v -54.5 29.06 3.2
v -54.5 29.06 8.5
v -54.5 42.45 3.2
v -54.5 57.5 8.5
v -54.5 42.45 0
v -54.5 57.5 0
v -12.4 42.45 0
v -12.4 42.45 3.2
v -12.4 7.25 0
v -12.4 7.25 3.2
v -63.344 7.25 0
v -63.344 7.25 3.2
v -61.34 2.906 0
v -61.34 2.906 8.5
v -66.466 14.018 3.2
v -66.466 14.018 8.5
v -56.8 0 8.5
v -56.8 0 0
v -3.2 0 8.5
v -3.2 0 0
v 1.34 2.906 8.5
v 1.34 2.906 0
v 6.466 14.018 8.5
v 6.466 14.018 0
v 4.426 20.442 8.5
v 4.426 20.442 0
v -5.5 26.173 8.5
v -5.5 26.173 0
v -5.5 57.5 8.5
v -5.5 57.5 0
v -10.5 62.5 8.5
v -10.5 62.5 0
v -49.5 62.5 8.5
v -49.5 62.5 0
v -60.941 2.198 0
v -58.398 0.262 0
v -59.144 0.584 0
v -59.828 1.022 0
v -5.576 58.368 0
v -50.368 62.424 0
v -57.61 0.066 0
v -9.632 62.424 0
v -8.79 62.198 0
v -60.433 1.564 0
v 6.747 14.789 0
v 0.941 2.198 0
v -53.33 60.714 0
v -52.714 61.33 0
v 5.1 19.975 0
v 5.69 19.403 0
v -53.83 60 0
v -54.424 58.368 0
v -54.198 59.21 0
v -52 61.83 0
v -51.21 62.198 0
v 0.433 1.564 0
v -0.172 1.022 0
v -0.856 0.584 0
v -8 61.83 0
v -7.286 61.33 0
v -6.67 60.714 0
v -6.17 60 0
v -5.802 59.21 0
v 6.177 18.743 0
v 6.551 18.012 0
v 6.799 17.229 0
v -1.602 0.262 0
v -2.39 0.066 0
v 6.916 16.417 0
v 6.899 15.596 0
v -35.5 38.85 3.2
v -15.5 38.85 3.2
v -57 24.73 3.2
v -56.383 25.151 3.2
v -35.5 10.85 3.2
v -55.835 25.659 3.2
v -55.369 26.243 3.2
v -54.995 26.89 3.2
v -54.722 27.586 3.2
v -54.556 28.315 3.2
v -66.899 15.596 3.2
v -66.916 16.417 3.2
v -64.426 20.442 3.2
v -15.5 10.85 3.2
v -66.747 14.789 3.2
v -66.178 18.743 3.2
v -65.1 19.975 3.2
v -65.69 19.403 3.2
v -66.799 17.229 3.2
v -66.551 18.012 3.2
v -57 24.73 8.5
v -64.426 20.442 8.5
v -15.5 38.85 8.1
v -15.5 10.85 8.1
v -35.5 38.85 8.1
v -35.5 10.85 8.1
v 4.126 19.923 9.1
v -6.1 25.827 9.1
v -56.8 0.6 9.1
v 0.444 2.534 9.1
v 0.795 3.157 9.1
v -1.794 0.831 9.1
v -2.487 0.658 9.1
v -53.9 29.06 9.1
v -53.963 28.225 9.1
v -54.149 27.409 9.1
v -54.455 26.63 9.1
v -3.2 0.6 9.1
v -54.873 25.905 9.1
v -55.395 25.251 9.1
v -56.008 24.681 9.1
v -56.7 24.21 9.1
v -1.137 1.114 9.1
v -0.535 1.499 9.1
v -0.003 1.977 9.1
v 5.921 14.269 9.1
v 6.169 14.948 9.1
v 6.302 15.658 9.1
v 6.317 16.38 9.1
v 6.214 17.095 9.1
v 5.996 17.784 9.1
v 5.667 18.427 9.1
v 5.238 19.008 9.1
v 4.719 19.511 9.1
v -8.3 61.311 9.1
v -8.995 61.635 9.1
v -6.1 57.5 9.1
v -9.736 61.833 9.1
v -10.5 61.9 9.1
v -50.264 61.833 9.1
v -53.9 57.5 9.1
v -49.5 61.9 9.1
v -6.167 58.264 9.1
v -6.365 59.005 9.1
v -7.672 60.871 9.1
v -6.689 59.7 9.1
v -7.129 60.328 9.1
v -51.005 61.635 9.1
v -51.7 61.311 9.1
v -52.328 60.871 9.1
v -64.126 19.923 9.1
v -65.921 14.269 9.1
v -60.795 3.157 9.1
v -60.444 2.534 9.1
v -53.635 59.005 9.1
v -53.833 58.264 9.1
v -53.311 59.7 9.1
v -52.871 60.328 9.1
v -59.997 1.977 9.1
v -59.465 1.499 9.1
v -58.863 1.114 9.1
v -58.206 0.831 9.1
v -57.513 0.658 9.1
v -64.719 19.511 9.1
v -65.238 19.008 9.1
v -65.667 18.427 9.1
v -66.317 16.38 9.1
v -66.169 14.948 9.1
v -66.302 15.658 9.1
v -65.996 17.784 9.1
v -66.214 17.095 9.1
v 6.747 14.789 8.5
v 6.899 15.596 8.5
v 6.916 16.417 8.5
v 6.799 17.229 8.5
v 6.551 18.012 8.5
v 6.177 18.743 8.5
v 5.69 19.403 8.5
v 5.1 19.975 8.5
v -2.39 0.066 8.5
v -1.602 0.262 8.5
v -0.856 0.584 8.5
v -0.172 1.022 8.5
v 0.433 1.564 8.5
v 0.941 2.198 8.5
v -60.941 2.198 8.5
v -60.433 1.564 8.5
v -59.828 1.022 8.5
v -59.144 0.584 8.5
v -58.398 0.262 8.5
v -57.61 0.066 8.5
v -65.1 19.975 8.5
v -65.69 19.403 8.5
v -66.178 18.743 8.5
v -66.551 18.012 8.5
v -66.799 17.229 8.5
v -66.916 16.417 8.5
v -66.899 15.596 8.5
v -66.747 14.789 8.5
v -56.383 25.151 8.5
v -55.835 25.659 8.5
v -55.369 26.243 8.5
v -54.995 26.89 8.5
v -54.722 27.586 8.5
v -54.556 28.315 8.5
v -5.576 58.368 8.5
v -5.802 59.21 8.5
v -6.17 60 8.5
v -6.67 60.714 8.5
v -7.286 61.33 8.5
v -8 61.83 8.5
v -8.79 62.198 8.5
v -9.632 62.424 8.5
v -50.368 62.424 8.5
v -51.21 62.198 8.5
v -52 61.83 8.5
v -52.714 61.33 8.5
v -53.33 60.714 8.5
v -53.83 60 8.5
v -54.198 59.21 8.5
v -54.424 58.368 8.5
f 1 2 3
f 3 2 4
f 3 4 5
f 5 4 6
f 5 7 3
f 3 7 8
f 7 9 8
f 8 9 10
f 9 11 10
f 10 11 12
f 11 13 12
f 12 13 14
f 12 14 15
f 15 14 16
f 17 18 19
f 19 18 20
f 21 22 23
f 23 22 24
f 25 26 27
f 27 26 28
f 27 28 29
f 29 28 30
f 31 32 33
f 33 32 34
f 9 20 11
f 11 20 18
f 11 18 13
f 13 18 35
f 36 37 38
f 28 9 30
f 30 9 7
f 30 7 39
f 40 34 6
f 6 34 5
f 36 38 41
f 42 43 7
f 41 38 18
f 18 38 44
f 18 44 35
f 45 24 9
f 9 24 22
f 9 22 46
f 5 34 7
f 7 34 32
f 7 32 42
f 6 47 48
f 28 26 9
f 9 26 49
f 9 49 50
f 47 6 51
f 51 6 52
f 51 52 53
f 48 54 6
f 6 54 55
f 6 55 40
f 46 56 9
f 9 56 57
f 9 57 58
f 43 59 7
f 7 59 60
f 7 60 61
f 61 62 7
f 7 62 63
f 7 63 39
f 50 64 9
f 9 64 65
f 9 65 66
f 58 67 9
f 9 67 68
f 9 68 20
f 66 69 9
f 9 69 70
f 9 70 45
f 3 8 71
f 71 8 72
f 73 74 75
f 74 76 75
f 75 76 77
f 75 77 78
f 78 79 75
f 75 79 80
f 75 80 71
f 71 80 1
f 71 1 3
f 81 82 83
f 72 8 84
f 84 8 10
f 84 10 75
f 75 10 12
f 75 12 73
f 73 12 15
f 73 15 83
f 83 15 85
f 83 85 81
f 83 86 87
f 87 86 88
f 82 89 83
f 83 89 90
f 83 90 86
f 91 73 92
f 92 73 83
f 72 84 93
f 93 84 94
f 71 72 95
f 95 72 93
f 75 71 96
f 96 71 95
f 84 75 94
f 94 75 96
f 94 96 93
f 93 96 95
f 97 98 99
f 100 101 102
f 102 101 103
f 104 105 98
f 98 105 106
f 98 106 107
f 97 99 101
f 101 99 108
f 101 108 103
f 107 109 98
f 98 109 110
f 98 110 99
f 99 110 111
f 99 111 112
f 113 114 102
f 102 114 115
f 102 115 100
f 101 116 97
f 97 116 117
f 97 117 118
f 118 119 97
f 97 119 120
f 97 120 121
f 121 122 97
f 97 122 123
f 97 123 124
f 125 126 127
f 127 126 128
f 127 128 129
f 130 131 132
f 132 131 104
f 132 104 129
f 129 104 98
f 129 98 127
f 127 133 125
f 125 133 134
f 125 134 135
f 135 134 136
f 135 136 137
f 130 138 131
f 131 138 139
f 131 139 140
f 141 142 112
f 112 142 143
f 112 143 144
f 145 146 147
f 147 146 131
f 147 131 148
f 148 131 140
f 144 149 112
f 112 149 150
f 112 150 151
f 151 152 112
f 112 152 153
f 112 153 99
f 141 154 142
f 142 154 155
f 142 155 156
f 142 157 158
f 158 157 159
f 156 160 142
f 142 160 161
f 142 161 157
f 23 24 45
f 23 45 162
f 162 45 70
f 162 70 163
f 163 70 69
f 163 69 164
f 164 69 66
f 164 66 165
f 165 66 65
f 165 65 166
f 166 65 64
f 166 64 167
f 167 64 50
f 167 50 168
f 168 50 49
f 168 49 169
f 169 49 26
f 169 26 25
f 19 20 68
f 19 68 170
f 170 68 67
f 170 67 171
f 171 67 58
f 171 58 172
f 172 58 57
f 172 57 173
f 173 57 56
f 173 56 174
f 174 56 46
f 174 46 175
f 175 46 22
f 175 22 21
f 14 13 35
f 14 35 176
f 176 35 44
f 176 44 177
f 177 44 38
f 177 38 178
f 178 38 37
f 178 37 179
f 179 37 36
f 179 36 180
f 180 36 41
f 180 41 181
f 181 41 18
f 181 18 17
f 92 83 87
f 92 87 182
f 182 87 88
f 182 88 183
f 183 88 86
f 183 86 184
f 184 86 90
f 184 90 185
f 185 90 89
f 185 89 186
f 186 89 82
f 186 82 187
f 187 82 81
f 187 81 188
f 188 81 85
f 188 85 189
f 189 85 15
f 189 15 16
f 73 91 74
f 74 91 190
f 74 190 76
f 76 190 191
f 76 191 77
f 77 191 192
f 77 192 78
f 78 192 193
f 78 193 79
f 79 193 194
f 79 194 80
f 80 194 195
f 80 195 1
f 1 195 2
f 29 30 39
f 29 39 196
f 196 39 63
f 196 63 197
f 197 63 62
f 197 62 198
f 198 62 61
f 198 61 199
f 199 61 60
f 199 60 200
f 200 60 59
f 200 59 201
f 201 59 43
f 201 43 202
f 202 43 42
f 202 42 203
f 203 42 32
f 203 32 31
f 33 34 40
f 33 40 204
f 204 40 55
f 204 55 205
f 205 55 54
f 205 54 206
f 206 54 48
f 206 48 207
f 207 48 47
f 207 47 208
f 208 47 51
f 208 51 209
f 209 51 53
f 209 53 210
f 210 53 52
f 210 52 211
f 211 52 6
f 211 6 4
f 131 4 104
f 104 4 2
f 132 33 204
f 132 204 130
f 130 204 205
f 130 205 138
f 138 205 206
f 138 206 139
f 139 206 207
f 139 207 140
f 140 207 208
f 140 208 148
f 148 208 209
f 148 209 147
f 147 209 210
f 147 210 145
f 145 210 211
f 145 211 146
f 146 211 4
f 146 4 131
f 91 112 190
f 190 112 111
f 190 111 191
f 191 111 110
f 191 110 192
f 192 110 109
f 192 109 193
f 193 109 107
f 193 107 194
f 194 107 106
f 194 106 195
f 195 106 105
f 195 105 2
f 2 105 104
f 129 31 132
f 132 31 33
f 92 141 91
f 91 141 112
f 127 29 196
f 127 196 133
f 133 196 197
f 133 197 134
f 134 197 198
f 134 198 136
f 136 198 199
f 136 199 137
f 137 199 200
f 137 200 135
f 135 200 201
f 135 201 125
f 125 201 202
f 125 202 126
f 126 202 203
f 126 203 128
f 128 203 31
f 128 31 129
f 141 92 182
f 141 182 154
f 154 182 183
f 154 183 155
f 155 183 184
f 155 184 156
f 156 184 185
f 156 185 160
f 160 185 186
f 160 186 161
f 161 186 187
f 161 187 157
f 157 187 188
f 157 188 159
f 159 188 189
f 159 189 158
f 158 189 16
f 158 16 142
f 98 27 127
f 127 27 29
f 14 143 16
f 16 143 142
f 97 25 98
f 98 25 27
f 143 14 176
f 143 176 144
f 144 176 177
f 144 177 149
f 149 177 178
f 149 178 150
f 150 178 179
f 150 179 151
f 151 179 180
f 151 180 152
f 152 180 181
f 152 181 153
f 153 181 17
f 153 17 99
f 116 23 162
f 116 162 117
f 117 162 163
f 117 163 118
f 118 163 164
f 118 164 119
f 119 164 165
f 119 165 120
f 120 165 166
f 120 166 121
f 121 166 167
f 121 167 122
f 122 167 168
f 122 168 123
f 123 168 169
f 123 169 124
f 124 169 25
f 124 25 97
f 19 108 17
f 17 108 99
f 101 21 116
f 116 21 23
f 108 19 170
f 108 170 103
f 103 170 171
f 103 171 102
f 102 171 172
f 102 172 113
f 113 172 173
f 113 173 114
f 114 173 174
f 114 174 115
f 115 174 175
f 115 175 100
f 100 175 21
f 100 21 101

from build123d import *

# Parameters (mm, degrees)
BOSS_EXTRUDE1_DEPTH = 3.2
SKETCH2_W           = 20
SKETCH2_H           = 28
BOSS_EXTRUDE2_DEPTH = 4.9
BOSS_EXTRUDE3_DEPTH = 1
FILLET1_R           = 5
CHAMFER1_SIZE       = 0.6


with BuildPart() as part:
    # Sketch1 → Boss-Extrude1 (new body)
    with BuildSketch(Plane.XY):
        Polygon((-54.5, 42.45), (-12.4, 42.45), (-12.4, 7.25), (-63.3440625, 7.25), (-60, 0), (0, 0), (8.376844495, 18.161180477), (-5.5, 26.172980381), (-5.5, 62.5), (-54.5, 62.5), align=None)
    extrude(amount=BOSS_EXTRUDE1_DEPTH)

    # Sketch2 → Boss-Extrude2 (add)
    with BuildSketch(Plane.XY.offset(3.2)):
        Polygon((-5.5, 26.172980381), (-5.5, 62.5), (-54.5, 62.5), (-54.5, 26.172980381), (-68.376844495, 18.161180477), (-60, 0), (0, 0), (8.376844495, 18.161180477), align=None)
        with Locations((-25.5, 24.85)):
            Rectangle(SKETCH2_W, SKETCH2_H, mode=Mode.SUBTRACT)
    extrude(amount=BOSS_EXTRUDE2_DEPTH)

    # Sketch3 → Boss-Extrude3 (add)
    with BuildSketch(Plane.XY.offset(8.1)):
        Polygon((-68.376844495, 18.161180477), (-60, 0), (0, 0), (8.376844495, 18.161180477), (-5.5, 26.172980381), (-5.5, 62.5), (-54.5, 62.5), (-54.5, 26.172980381), align=None)
    extrude(amount=BOSS_EXTRUDE3_DEPTH)

    # Fillet1
    fillet1_edges = [part.edges().sort_by_distance(p)[0] for p in [
        (-60, 0, 4.55),
        (-54.5, 26.172980381, 6.15),
        (-68.376844495, 18.161180477, 6.15),
        (0, 0, 4.55),
        (8.376844495, 18.161180477, 4.55),
        (-5.5, 62.5, 4.55),
        (-54.5, 62.5, 4.55),
    ]]
    fillet(fillet1_edges, radius=FILLET1_R)

    # Chamfer1
    chamfer1_edges = [part.edges().sort_by_distance(p)[0] for p in [
        (-55.169872981, 26.559731727, 9.1),
        (-5.5, 41.836490191, 9.1),
        (-0.537219377, 23.307717653, 9.1),
        (3.903075742, 8.461952829, 9.1),
        (-60.712780623, 22.586029816, 9.1),
        (-63.903075742, 8.461952829, 9.1),
        (-30, 0, 9.1),
        (-30, 62.5, 9.1),
        (-54.5, 43.279865864, 9.1),
        (-53.035533906, 61.035533906, 9.1),
        (-6.964466094, 61.035533906, 9.1),
        (-66.691006554, 17.625777943, 9.1),
        (-59.495268482, 0.788642997, 9.1),
        (-0.504731518, 0.788642997, 9.1),
        (6.691006554, 17.625777943, 9.1),
    ]]
    chamfer(chamfer1_edges, length=CHAMFER1_SIZE)


solid = part.part
